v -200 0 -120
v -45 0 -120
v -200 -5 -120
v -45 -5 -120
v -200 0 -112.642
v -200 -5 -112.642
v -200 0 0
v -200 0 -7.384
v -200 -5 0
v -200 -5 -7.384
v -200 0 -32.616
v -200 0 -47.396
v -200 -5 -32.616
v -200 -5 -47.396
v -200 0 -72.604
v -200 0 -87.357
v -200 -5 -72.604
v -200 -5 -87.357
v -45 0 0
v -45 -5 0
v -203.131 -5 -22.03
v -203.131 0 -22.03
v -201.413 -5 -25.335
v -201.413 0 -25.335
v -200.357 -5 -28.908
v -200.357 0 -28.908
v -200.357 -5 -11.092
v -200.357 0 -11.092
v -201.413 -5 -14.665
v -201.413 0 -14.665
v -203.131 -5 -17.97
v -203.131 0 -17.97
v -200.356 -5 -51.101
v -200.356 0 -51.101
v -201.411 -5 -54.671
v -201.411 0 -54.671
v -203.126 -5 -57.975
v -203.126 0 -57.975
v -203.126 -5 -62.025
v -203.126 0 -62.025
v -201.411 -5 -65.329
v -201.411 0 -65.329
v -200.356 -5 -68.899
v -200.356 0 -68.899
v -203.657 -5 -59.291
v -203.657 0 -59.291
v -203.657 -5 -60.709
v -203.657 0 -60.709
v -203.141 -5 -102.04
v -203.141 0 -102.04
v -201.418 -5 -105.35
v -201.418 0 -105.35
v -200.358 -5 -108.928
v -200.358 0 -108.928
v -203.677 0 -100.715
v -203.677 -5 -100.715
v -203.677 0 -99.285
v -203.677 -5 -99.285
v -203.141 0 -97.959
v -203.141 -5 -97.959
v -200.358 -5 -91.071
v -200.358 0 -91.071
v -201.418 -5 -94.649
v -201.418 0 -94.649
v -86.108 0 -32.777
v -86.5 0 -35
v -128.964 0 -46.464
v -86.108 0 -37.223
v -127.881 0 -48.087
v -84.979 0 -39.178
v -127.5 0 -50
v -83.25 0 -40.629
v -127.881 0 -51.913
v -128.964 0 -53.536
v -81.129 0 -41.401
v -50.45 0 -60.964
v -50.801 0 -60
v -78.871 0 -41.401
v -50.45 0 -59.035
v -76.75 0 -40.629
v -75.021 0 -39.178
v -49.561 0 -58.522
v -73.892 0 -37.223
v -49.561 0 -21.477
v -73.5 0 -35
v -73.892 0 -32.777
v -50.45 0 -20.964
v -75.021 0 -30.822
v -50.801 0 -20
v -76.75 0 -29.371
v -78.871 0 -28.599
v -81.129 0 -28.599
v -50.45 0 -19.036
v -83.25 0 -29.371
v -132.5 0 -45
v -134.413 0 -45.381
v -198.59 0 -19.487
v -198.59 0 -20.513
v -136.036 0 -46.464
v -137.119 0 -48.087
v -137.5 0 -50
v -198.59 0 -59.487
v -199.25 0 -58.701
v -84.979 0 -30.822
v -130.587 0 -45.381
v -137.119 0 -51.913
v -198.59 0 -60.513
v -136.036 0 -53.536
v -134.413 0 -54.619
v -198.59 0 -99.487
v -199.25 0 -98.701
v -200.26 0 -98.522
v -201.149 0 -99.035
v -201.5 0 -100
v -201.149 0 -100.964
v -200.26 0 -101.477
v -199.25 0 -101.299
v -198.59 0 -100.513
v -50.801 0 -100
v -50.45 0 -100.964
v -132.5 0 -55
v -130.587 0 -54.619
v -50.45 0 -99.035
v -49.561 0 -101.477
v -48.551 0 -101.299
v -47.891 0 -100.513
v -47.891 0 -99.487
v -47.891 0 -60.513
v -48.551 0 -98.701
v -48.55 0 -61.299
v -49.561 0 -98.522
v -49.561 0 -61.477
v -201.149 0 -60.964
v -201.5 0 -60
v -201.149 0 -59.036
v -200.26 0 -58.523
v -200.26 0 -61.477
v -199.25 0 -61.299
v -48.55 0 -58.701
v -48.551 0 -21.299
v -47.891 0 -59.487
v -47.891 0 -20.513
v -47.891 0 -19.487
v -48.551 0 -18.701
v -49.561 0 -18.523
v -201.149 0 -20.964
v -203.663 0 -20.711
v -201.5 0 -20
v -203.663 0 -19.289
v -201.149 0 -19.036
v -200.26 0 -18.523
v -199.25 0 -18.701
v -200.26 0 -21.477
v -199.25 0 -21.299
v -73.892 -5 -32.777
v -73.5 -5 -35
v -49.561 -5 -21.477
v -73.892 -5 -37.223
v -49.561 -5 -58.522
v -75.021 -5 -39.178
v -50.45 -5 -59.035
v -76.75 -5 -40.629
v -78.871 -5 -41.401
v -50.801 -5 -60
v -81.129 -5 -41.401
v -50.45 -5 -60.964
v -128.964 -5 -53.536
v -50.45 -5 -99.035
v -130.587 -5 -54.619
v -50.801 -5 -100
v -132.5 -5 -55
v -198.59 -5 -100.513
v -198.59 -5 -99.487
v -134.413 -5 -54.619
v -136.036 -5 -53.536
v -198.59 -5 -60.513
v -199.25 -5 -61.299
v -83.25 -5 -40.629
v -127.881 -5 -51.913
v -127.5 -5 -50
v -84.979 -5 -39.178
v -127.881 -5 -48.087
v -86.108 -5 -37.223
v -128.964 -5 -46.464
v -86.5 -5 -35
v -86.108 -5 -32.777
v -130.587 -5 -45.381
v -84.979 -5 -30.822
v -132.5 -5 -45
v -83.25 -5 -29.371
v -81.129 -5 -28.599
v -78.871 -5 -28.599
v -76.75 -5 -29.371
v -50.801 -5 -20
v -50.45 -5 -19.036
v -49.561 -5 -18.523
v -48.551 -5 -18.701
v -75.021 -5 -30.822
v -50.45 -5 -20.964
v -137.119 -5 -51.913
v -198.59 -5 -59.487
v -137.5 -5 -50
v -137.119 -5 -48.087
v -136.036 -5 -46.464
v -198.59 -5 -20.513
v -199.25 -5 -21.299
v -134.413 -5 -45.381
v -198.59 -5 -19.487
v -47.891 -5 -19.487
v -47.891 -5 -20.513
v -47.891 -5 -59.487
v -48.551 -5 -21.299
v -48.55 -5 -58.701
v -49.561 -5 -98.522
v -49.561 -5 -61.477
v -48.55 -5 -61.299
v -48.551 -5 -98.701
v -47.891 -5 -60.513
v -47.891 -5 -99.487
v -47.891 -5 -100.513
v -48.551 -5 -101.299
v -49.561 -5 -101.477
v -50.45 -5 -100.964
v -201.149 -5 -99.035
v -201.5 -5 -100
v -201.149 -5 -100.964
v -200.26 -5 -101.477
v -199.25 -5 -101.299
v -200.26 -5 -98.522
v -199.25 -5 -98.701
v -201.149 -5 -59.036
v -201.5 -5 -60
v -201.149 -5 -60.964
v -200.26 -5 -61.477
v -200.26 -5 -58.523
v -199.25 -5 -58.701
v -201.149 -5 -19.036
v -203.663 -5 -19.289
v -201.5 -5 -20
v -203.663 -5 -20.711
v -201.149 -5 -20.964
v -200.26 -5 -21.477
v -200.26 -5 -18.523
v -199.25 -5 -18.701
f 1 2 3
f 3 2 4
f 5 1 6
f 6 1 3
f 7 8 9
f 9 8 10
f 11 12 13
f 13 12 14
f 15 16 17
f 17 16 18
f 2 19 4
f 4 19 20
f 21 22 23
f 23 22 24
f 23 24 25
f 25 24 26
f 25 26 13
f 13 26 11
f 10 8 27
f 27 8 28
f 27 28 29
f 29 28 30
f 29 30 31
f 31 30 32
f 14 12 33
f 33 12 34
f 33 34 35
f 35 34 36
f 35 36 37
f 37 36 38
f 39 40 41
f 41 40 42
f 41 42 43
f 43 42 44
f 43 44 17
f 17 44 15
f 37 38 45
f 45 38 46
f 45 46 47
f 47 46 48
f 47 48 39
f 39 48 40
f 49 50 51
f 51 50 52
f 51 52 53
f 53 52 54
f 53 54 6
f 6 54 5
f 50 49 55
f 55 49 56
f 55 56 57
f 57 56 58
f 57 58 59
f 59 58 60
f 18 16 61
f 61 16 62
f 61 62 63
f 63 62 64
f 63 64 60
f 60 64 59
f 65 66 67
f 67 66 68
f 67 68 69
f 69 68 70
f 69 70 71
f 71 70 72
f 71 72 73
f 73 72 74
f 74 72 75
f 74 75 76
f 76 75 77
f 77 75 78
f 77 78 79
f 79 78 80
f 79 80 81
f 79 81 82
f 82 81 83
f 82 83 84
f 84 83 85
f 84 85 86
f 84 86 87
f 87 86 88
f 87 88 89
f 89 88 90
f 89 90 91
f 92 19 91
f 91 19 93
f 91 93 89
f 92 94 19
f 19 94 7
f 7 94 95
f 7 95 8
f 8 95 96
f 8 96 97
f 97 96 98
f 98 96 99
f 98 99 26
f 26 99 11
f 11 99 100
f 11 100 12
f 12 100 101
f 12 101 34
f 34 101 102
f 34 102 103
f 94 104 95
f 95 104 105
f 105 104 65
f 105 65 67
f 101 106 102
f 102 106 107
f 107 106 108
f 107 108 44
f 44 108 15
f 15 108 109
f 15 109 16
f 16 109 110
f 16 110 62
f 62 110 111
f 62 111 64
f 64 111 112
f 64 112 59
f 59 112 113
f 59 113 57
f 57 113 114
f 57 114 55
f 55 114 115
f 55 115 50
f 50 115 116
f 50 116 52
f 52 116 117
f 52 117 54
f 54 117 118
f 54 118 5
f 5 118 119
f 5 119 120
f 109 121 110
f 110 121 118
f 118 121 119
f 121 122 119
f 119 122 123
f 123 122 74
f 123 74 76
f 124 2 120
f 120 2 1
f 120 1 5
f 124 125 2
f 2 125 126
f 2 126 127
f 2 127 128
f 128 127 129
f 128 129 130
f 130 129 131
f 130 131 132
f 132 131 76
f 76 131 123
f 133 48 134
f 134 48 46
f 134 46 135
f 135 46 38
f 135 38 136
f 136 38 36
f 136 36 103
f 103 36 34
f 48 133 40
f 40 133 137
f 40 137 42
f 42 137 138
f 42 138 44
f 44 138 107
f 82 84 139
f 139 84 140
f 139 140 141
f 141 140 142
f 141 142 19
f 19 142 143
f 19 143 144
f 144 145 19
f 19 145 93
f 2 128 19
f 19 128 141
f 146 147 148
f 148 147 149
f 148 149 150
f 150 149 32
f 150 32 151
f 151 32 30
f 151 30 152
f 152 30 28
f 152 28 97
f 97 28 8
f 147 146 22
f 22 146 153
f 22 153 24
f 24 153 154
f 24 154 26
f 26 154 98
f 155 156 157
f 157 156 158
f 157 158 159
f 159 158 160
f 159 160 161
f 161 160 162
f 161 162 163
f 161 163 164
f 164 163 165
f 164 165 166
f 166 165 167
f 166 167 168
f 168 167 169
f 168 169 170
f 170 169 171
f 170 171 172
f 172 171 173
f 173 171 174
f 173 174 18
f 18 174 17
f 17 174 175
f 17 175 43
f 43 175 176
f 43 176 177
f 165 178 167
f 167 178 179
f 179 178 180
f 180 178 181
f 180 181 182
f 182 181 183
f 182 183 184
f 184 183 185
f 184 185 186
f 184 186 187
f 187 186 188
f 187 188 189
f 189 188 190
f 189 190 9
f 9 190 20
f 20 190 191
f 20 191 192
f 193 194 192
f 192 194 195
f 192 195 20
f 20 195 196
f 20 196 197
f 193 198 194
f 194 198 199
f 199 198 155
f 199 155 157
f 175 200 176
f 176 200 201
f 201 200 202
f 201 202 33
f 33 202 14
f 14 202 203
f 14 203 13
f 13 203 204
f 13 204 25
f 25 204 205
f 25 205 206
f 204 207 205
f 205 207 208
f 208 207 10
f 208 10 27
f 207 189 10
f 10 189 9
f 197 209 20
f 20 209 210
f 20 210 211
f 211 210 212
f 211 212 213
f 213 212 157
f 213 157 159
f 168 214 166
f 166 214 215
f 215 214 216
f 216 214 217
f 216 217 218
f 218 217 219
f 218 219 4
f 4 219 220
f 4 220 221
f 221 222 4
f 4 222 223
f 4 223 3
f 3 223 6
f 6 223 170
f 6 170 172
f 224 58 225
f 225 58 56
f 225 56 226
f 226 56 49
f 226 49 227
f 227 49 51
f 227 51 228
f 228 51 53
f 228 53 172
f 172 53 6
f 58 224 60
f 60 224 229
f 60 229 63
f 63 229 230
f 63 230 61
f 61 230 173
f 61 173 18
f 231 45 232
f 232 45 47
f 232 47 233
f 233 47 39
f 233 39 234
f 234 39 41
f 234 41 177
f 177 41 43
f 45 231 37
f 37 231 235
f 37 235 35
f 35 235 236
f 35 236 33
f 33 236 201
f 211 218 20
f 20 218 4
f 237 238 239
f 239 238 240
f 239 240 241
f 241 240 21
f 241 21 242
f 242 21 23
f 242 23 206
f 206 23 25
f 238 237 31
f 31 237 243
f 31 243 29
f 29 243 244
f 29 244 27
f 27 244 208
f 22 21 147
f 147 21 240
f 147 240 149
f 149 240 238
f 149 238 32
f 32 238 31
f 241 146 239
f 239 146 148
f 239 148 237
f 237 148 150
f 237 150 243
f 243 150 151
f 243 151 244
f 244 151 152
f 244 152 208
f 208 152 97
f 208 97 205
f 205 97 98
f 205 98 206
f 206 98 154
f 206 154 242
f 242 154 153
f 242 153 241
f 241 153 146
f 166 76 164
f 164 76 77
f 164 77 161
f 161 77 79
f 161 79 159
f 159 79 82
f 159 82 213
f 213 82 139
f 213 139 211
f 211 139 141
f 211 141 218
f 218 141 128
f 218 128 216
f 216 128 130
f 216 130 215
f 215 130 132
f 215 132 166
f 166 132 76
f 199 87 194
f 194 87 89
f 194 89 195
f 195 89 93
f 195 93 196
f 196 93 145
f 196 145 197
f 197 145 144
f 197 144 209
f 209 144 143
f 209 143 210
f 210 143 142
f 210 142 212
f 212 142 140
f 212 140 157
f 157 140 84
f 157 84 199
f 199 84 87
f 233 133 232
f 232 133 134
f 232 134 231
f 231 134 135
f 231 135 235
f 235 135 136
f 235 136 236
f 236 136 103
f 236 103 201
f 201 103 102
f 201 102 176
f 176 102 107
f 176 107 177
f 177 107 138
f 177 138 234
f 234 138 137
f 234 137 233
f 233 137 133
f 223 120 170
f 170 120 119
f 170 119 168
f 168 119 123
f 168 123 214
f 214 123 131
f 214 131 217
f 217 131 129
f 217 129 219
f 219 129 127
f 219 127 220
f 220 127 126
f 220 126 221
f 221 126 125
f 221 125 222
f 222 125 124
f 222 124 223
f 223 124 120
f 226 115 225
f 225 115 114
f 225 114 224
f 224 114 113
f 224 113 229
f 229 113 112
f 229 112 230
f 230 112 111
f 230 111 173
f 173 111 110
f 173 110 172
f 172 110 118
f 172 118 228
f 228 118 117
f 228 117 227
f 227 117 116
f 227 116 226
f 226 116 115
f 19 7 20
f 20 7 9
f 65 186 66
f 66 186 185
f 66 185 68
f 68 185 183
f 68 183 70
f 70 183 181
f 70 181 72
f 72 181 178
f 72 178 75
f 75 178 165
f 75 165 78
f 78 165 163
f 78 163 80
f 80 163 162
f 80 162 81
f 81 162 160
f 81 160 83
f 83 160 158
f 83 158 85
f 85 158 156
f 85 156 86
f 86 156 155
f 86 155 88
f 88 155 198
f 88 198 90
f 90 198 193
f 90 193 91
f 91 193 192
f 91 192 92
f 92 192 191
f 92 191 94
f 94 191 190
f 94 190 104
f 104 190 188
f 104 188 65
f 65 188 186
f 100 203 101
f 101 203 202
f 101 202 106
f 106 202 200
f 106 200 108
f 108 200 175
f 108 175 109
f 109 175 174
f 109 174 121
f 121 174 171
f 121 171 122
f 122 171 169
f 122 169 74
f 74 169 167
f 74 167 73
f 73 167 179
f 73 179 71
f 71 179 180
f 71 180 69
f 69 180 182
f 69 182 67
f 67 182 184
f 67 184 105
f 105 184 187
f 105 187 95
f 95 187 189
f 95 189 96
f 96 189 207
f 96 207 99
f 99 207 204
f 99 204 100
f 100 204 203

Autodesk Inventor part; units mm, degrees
ref_plane "YZ Plane" through (0, 0, 0) normal (1, 0, 0) x (0, 1, 0)
ref_plane "XZ Plane" through (0, 0, 0) normal (0, 1, 0) x (-1, 0, 0)
ref_plane "XY Plane" through (0, 0, 0) normal (0, 0, 1) x (1, 0, 0)
sketch "Sketch2" plane through (0, 0, 0) normal (0, 1, 0) x (-1, 0, 0)
  line L0 (0, 0) -> (200, 0)
  line L1 (200, 0) -> (200, -120)
  line L2 (200, -120) -> (0, -120)
  line L3 (0, -120) -> (0, 0)
  dimension "d0" = 200
  dimension "d1" = 120
extrude "Extrusion1" add sketch "Sketch2" along normal blind 50
sketch "Sketch3" plane through (0, 50, 0) normal (0, 1, 0) x (1, 0, 0)
  line L0 (0, 120) -> (-200, 120) projected
  line L1 (0, 120) -> (0, 113)
  line L2 (0, 0) -> (0, 120) projected
  line L3 (-200, 0) -> (0, 0) projected
  line L4 (0, 0) -> (0, 7)
  line L5 (0, 7) -> (-45, 7)
  line L6 (-45, 7) -> (-45, 113)
  line L7 (-45, 113) -> (0, 113)
  line L8 (0, 113) -> (0, 7)
  dimension "d4" = 7
  dimension "d5" = 7
  dimension "d6" = 45
extrude "Extrusion2" cut sketch "Sketch3" against normal blind 50
sketch "Sketch6" plane through (-200, 0, 0) normal (0, 0, 1) x (1, 0, 0)
  line L0 (200, 0) -> (200, 50) projected
  line L1 (200, 0) -> (205, 0)
  line L2 (205, 0) -> (205, 50)
  line L3 (205, 50) -> (200, 50)
  line L4 (200, 50) -> (200, 0)
  dimension "d42" = 5
extrude "Extrusion4" add sketch "Sketch6" against normal blind 7
sketch "Sketch7" plane through (0, 0, -120) normal (0, 0, -1) x (-1, 0, 0)
  line L0 (45, 50) -> (0, 50) projected
  line L1 (200, 0) -> (-5, 0) projected
  line L2 (0, 50) -> (-5, 50)
  line L3 (-5, 50) -> (-5, 0)
  line L4 (-5, 0) -> (0, 0)
  line L5 (0, 0) -> (0, 50)
extrude "Extrusion5" add sketch "Sketch7" against normal blind 7
sketch "Sketch8" plane through (0, 0, 0) normal (0, -1, 0) x (1, 0, 0)
  line L0 (-200, -120) -> (-200, 0) projected
  line L1 (-200, 0) -> (5, 0) projected
  line L2 (-200, 0) -> (-195, 0)
  line L3 (-45, -113) -> (-45, -7) projected
  line L4 (-200, -120) -> (5, -120) projected
  line L5 (-45, -113) -> (-52, -113)
  line L6 (-52, -113) -> (-52, -120)
  line L7 (-52, -120) -> (-45, -120)
  line L8 (-45, -120) -> (-45, -113)
  line L9 (-45, -7) -> (5, -7) projected
  line L10 (-45, -7) -> (-52, -7)
  line L11 (-52, -7) -> (-52, 0)
  line L12 (-52, 0) -> (-45, 0)
  line L13 (-45, 0) -> (-45, -7)
  line L14 (-200, 0) -> (-193, 0)
  line L15 (-193, 0) -> (-193, -7)
  line L16 (-193, -7) -> (-200, -7)
  line L17 (-200, -7) -> (-200, 0)
  line L18 (-200, -120) -> (-193, -120)
  line L19 (-193, -120) -> (-193, -113)
  line L20 (-193, -113) -> (-200, -113)
  line L21 (-200, -113) -> (-200, -120)
  line L22 (-193, -113) -> (-52, -113)
  line L23 (-52, -113) -> (-52, -7)
  line L24 (-52, -7) -> (-193, -7)
  line L25 (-193, -7) -> (-193, -113)
  point P0 (0, 0)
  dimension "d51" = 7
  dimension "d52" = 7
  dimension "d53" = 7
  dimension "d54" = 7
  dimension "d55" = 7
  dimension "d56" = 7
  dimension "d57" = 7
extrude "Extrusion6" cut sketch "Sketch8" against normal blind 45 contours L25 L24 L23 L22
sketch "Sketch9" plane through (-45, 50, -7) normal (1, 0, 0) x (0, 0, -1)
  line L0 (106, -50) -> (0, -50) projected
  line L1 (53, -50) -> (53, 0)
  line L2 (0, 0) -> (106, 0) projected
  line L3 (53, -25) -> (106, -25)
  line L4 (106, -25) -> (84, -25)
  line L5 (84, -25) -> (84, -15)
  line L6 (84, -25) -> (84, -35)
  line L7 (84, -35) -> (72, -35)
  line L8 (72, -35) -> (72, -15)
  line L9 (72, -15) -> (84, -15)
  line L10 (84, -15) -> (84, -35)
  line L11 (106, 0) -> (0, 0)
  line L12 (53, -25) -> (0, -25)
  line L13 (0, -25) -> (22, -25)
  line L14 (106, -25) -> (86, -25)
  line L15 (86, -25) -> (69.9067, -25)
  line L16 (69.9067, -25) -> (69.9067, -38.406)
  line L17 (69.9067, -38.406) -> (86, -38.406)
  line L18 (86, -38.406) -> (86, -25)
  line L19 (86, -25) -> (69.9067, -25)
  line L20 (69.9067, -25) -> (69.9067, -11.59)
  line L21 (69.9067, -11.59) -> (86, -11.59)
  line L22 (86, -11.59) -> (86, -25)
  line L23 (53, -25) -> (0, -25)
  line L24 (0, -25) -> (22, -25)
  line L25 (22, -25) -> (22, -15)
  line L26 (22, -25) -> (22, -35)
  line L27 (22, -35) -> (34, -35)
  line L28 (34, -35) -> (34, -15)
  line L29 (34, -15) -> (22, -15)
  line L30 (22, -15) -> (22, -35)
  line L31 (0, -25) -> (20, -25)
  line L32 (20, -25) -> (36.0933, -25)
  line L33 (36.0933, -25) -> (36.0933, -38.406)
  line L34 (36.0933, -38.406) -> (20, -38.406)
  line L35 (20, -38.406) -> (20, -25)
  line L36 (20, -25) -> (36.0933, -25)
  line L37 (36.0933, -25) -> (36.0933, -11.59)
  line L38 (36.0933, -11.59) -> (20, -11.59)
  line L39 (20, -11.59) -> (20, -25)
  point P0 (-7, -50)
  dimension "d60" = 22
  dimension "d61" = 10
  dimension "d62" = 10
  dimension "d63" = 12
  dimension "d66" = 20
  dimension "d67" = 13.41
  dimension "d68" = 13.4061
extrude "Extrusion8" cut sketch "Sketch9" against normal blind 10
sketch "Sketch10" plane through (0, 45, 0) normal (0, -1, 0) x (1, 0, 0)
  line L0 (-193, -113) -> (-193, -7) projected
  line L1 (-193, -60) -> (-148, -60)
  line L2 (-148, -7) -> (-143, -7)
  line L3 (-143, -7) -> (-143, -95.0021)
  line L4 (-143, -95.0021) -> (-148, -95.0021)
  line L5 (-148, -95.0021) -> (-148, -7)
  point P0 (0, 0)
  dimension "d71" = 45
  dimension "d72" = 5
extrude "Extrusion9" add sketch "Sketch10" along normal blind 40
sketch "Sketch11" plane through (0, 0, 0) normal (0, -1, 0) x (1, 0, 0)
  line L0 (-148, -7) -> (-148, -95.0021) projected
  line L1 (-148, -95.0021) -> (-148, -114.483)
  line L2 (-52, -113) -> (-193, -113) projected
  line L3 (-193, -113) -> (-148, -113)
  line L4 (-148, -113) -> (-148, -117)
  line L5 (-148, -117) -> (-193, -117)
  line L6 (-193, -117) -> (-193, -113)
  line L7 (-193, -7) -> (-52, -7) projected
  line L8 (-193, -7) -> (-148, -7)
  line L9 (-148, -7) -> (-148, -3)
  line L10 (-148, -3) -> (-193, -3)
  line L11 (-193, -3) -> (-193, -7)
  point P0 (0, 0)
  dimension "d75" = 4
  dimension "d76" = 4
extrude "Extrusion10" cut sketch "Sketch11" against normal blind 45
sketch "Sketch12" plane through (-52, 0, -113) normal (0, 0, 1) x (1, 0, 0)
  line L0 (0, 0) -> (0, 45) projected
  line L1 (0, 45) -> (-91, 45)
  line L2 (-91, 45) -> (-91, 0)
  line L3 (-91, 0) -> (0, 0)
  line L4 (0, 0) -> (0, 45)
  line L5 (-69.4543, 22.5) -> (-21.0513, 22.5) construction
  line L6 (-69.4543, 10.4971) -> (-21.0513, 10.4971)
  line L7 (-21.0513, 34.5029) -> (-69.4543, 34.5029)
  arc A0 (-69.4543, 34.5029) -> (-69.4543, 10.4971) centre (-69.4543, 22.5) ccw
  arc A1 (-21.0513, 10.4971) -> (-21.0513, 34.5029) centre (-21.0513, 22.5) ccw
  point P0 (52, 0)
  point P1 (-45.2528, 22.5)
extrude "Extrusion11" cut sketch "Sketch12" along normal mid plane 2000 contours A0 L7 A1 L6
sketch "Sketch13" plane through (0, 0, 0) normal (0, -1, 0) x (1, 0, 0)
  line L0 (-200, -120) -> (-200, 0) projected
  line L1 (-200, -60) -> (-200, -100)
  line L2 (-200, -100) -> (-200, -20)
  circle A0 centre (-200, -20) radius 3.75
  circle A1 centre (-200, -60) radius 3.75
  circle A2 centre (-200, -100) radius 3.75
  circle A3 centre (-49.267, -60) radius 3.75
  circle A4 centre (-49.267, -100) radius 3.75
  circle A5 centre (-49.267, -20) radius 3.75
  line L3 (-45, -113) -> (-45, -7) projected
  point P0 (0, 0)
  dimension "d81" = 40
  dimension "d82" = 80
  dimension "d83" = 7.5
  dimension "d84" = 7.5
  dimension "d85" = 7.5
extrude "Extrusion12" add sketch "Sketch13" against normal blind 17.5 contours A2 L0 | L0 A2 | A1 L0 | L0 A1 | A0 L0 | L0 A0 | A3
extrude "Extrusion13" add sketch "Sketch13" against normal blind 17.5 contours A3 | A4 | A5
sketch "Sketch16" plane through (0, 0, 0) normal (0, -1, 0) x (1, 0, 0)
  arc A0 (-200, -16.25) -> (-200, -23.75) centre (-200, -20) ccw projected
  circle A1 centre (-200, -20) radius 1.5
  line L0 (-200, -120) -> (-200, 0) projected
  circle A2 centre (-200, -60) radius 1.5
  circle A3 centre (-200, -99.9997) radius 1.5
  circle A4 centre (-49.3006, -99.9997) radius 1.5
  circle A5 centre (-49.3006, -60) radius 1.5
  circle A6 centre (-49.3006, -20) radius 1.5
  point P0 (0, 0)
  dimension "d90" = 3
  dimension "d91" = 3
  dimension "d92" = 3
  dimension "d93" = 3
  dimension "d94" = 3
  dimension "d95" = 3
extrude "Extrusion14" cut sketch "Sketch16" along normal mid plane 15 contours L0 A1 | A1 L0 | A3 L0 | L0 A3 | A2 L0 | L0 A2 | A4 | A5 | A6
fillet "Fillet1" radius 3.5875 3 edges at (-203.75, 17.5, -60) (-203.75, 17.5, -100) (-203.75, 17.5, -20)
fillet "Fillet2" radius 2 3 edges at (-53.017, 17.5, -100) (-53.017, 17.5, -60) (-53.017, 17.5, -20)
sketch "Sketch17" plane through (0, 45, 0) normal (0, -1, 0) x (1, 0, 0)
  line L0 (-148, -7) -> (-52, -7) projected
  line L1 (-142.7275, -7) -> (-52, -7)
  line L2 (-52, -7) -> (-52, -113)
  line L3 (-52, -113) -> (-142.7275, -113)
  circle A0 centre (-49.3006, -60) radius 1.5 projected
  line L4 (-49.3006, -60) -> (-200.2165, -60)
  line L5 (-121.4543, -7) -> (-73.0513, -7) projected
  line L6 (-97.2528, -7) -> (-64.7528, -7)
  line L7 (-64.7528, -7) -> (-97.2528, -7)
  line L8 (-97.2528, -7) -> (-129.7528, -7)
  line L9 (-148, -7) -> (-143, -7) projected
  line L10 (-143, -7) -> (-129.7528, -7)
  line L11 (-143, -7) -> (-64.7528, -7)
  circle A1 centre (-64.7528, -101.7496) radius 2
  circle A2 centre (-64.7528, -18.25) radius 2
  circle A3 centre (-129.7528, -18.25) radius 2
  circle A4 centre (-129.7528, -101.7496) radius 2
  point P0 (0, 0)
  dimension "d105" = 32.5
  dimension "d106" = 32.5
  dimension "d107" = 32.5
  dimension "d108" = 4
  dimension "d109" = 4
  dimension "d110" = 4
  dimension "d111" = 4
extrude "Extrusion15" cut sketch "Sketch17" against normal blind 15 contours A1 | A2 | A3 | A4
fillet "Fillet3" radius 19.4625 15 edges at (-200, 16.4492, -17.3007) (-200, 16.4492, -22.6993) (-200, 17.5, -20) (-200, 6.9562, -16.25) (-200, 6.9562, -23.75) (-200, 16.4492, -62.6992) (-200, 16.4492, -57.3008) (-200, 17.5, -60) (-200, 6.9562, -63.75) (-200, 6.9562, -56.25) (-200, 16.4492, -102.6993) (-200, 16.4492, -97.3007) (-200, 17.5, -100) (-200, 6.9562, -103.75) (-200, 6.9562, -96.25)
sketch "Sketch18" plane through (-200, 0, -120) normal (0, 0, -1) x (-1, 0, 0)
  line L0 (-155, 50) -> (-155, 0) projected
  line L1 (-155, 0) -> (-155, 50)
  circle A0 centre (0, 0) radius 11.05
  circle A1 centre (-15.5, 15.5) radius 1.75
  circle A2 centre (15.5, 15.5) radius 1.75
  circle A3 centre (15.5, -15.5) radius 1.75
  circle A4 centre (-15.5, -15.5) radius 1.75
  circle A5 centre (0, 0) radius 11.05
  circle A6 centre (-15.5, 15.5) radius 1.75
  circle A7 centre (15.5, 15.5) radius 1.75
  circle A8 centre (15.5, -15.5) radius 1.75
  circle A9 centre (-15.5, -15.5) radius 1.75
  circle A10 centre (0, 0) radius 11.05
  circle A11 centre (-15.5, 15.5) radius 1.75
  circle A12 centre (15.5, 15.5) radius 1.75
  circle A13 centre (15.5, -15.5) radius 1.75
  circle A14 centre (-15.5, -15.5) radius 1.75
  line L2 (-205, 0) -> (-205, 50) projected
  line L3 (-155, 0) -> (-205, 0)
  line L4 (-205, 0) -> (-205, 50)
  line L5 (-205, 50) -> (-155, 50)
  line L6 (-155, 50) -> (-155, 0)
  circle A15 centre (-180, 25) radius 11.5
  line L7 (-180, 25) -> (-164.5, 25)
  line L8 (-164.5, 25) -> (-164.5, 50)
  line L9 (-205, 50) -> (-155, 50) projected
  line L10 (-205, 0) -> (0, 0) projected
  line L11 (-164.5, 0) -> (-164.5, 25)
  line L12 (-180, 25) -> (-195.5, 25)
  line L13 (-195.5, 25) -> (-195.5, 50)
  line L14 (-195.5, 0) -> (-195.5, 25)
  line L15 (-180, 25) -> (-180, 9.5)
  line L16 (-180, 25) -> (-180, 40.5)
  line L17 (-180, 40.5) -> (-164.5, 40.5)
  line L18 (-180, 40.5) -> (-195.5, 40.5)
  line L19 (-180, 9.5) -> (-164.5, 9.5)
  line L20 (-180, 9.5) -> (-195.5, 9.5)
  circle A16 centre (-164.5, 9.5) radius 2.5
  circle A17 centre (-164.5, 40.5) radius 2.5
  circle A18 centre (-195.5, 40.5) radius 2.5
  circle A19 centre (-195.5, 9.5) radius 2.5
  point P0 (-200, 0)
  dimension "d115" = 22.1
  dimension "d116" = 31
  dimension "d117" = 31
  dimension "d118" = 31
  dimension "d119" = 31
  dimension "d120" = 3.5
  dimension "d121" = 3.5
  dimension "d122" = 3.5
  dimension "d123" = 3.5
  dimension "d124" = 15.5
  dimension "d125" = 15.5
  dimension "d126" = 15.5
  dimension "d127" = 15.5
  dimension "d128" = 22.1
  dimension "d129" = 31
  dimension "d130" = 31
  dimension "d131" = 31
  dimension "d132" = 31
  dimension "d133" = 3.5
  dimension "d134" = 3.5
  dimension "d135" = 3.5
  dimension "d136" = 3.5
  dimension "d137" = 15.5
  dimension "d138" = 15.5
  dimension "d139" = 15.5
  dimension "d140" = 15.5
  dimension "d141" = 22.1
  dimension "d142" = 31
  dimension "d143" = 31
  dimension "d144" = 31
  dimension "d145" = 31
  dimension "d146" = 3.5
  dimension "d147" = 3.5
  dimension "d148" = 3.5
  dimension "d149" = 3.5
  dimension "d150" = 15.5
  dimension "d151" = 15.5
  dimension "d152" = 15.5
  dimension "d153" = 15.5
  dimension "d154" = 23
  dimension "d156" = 15.5
  dimension "d157" = 15.5
  dimension "d158" = 5
  dimension "d159" = 5
  dimension "d160" = 5
  dimension "d161" = 5
extrude "Extrusion16" cut sketch "Sketch18" against normal blind 2000 contours A17 L8 | L8 L17 A17 | A16 L19 L11 | L11 A16 | A18 L18 L13 | L13 A18 | L8 A17 L17 | A19 L14 | L14 L20 A19 | L19 A16 L11 | L18 A18 L13 | L14 A19 L20 | L16 L12 A15 | A15 L7 L16 | L15 L7 A15 | A15 L12 L15
sketch "Sketch19" plane through (0, 45, 0) normal (0, -1, 0) x (1, 0, 0)
  circle A0 centre (-129.7528, -101.7496) radius 2 projected
  circle A1 centre (-129.7528, -18.25) radius 2 projected
  line L0 (-129.7528, -101.7496) -> (-129.7528, -18.25)
  circle A2 centre (-64.7528, -18.25) radius 2 projected
  line L1 (-129.7528, -18.25) -> (-64.7528, -18.25)
  circle A3 centre (-64.7528, -101.7496) radius 2 projected
  line L2 (-64.7528, -18.25) -> (-64.7528, -101.7496)
  line L3 (-64.7528, -101.7496) -> (-129.7528, -101.7496)
  line L4 (-87.014, -168.9687) -> (-85.0378, -168.9687)
  circle A4 centre (-49.3006, -20) radius 1.5 projected
  circle A5 centre (-49.3006, -20) radius 1.5
  circle A6 centre (-49.3006, -59.9998) radius 1.5002
  circle A7 centre (-49.3006, -99.9997) radius 1.5 projected
  circle A8 centre (-49.3006, -99.9997) radius 1.5
  line L5 (-200, -120) -> (-200, 0) projected
  circle A9 centre (-200, -99.9997) radius 1.5
  circle A10 centre (-200, -60) radius 1.5 projected
  circle A11 centre (-200, -60) radius 1.5
  circle A12 centre (-200, -20) radius 1.5
  point P0 (0, 0)
extrude "Extrusion17" add sketch "Sketch19" along normal blind 100 contours A4 | A6 | A7 | A9 L5 | L5 A9 | A10 L5 | L5 A10 | A12 L5 | L5 A12
sketch "Sketch20" plane through (0, 0, 0) normal (0, -1, 0) x (1, 0, 0)
  line L0 (5, -120) -> (-200, -120) projected
  line L1 (-45, 0) -> (-200, 0)
  line L2 (-200, 0) -> (-200, -120)
  line L3 (-200, -120) -> (-45, -120)
  line L4 (-45, -120) -> (-45, 0)
  line L5 (-200, -61.5) -> (-200, -58.5) projected
  circle A0 centre (-200, -60) radius 3.7248
  line L6 (-200, -101.4997) -> (-200, -98.4997) projected
  circle A1 centre (-200, -99.9997) radius 3.7458
  line L7 (-200, -21.5) -> (-200, -18.5) projected
  circle A2 centre (-200, -20) radius 3.7312
  point P0 (0, 0)
  point P1 (-200, -16.2688)
  point P2 (-200, -23.7312)
  point P3 (-200, -56.2752)
  point P4 (-200, -63.7248)
  point P5 (-200, -96.2539)
  point P6 (-200, -103.7454)
extrude "Extrusion18" add sketch "Sketch20" along normal blind 5
fillet "Fillet4" radius 19.4625 6 edges at (-200, -2.5, -96.2539) (-200, -2.5, -103.7454) (-200, -2.5, -63.7248) (-200, -2.5, -56.2752) (-200, -2.5, -16.2688) (-200, -2.5, -23.7312)
sketch "Sketch21" plane through (0, -5, 0) normal (0, -1, 0) x (1, 0, 0)
  point P0 (0, 0)
sketch "Sketch22" plane through (0, 50, 0) normal (0, 1, 0) x (1, 0, 0)
  line L0 (-218.9045, 160.531) -> (29.7585, 160.531)
  line L1 (29.7585, 160.531) -> (29.7585, -28.8143)
  line L2 (29.7585, -28.8143) -> (-218.9045, -28.8143)
  line L3 (-218.9045, -28.8143) -> (-218.9045, 160.531)
  point P0 (0, 0)
extrude "Extrusion19" cut sketch "Sketch22" against normal blind 50
sketch "Sketch24" plane through (0, -5, 0) normal (0, -1, 0) x (1, 0, 0)
  circle A0 centre (-49.3006, -20) radius 1.5 projected
  circle A1 centre (-49.3006, -20) radius 1.5
  circle A2 centre (-49.3006, -59.9998) radius 1.5002 projected
  circle A3 centre (-49.3006, -59.9998) radius 1.5002
  circle A4 centre (-49.3006, -99.9997) radius 1.5 projected
  circle A5 centre (-49.3006, -99.9997) radius 1.5
  circle A6 centre (-200, -99.9997) radius 1.5 projected
  circle A7 centre (-200, -99.9997) radius 1.5
  circle A8 centre (-200, -60) radius 1.5 projected
  circle A9 centre (-200, -60) radius 1.5
  circle A10 centre (-200, -20) radius 1.5 projected
  circle A11 centre (-200, -20) radius 1.5
  point P0 (0, 0)
extrude "Extrusion20" cut sketch "Sketch24" along normal mid plane 500
sketch "Sketch25" plane through (0, -5, 0) normal (0, -1, 0) x (1, 0, 0)
  line L0 (-45, -120) -> (-45, 0) projected
  line L1 (-45, 0) -> (-132.5, 0)
  line L2 (-132.5, 0) -> (-132.5, -50)
  line L3 (-132.5, -50) -> (-45, -50)
  line L4 (-45, -50) -> (-45, 0)
  circle A0 centre (-132.5, -50) radius 5
  line L5 (-45, 0) -> (-200, 0) projected
  line L6 (-45, 0) -> (-80, 0)
  line L7 (-80, 0) -> (-80, -35)
  line L8 (-80, -35) -> (-45, -35)
  line L9 (-45, -35) -> (-45, 0)
  circle A1 centre (-80, -35) radius 6.5
  point P0 (0, 0)
  dimension "d181" = 87.5
  dimension "d182" = 50
  dimension "d183" = 10
  dimension "d184" = 35
  dimension "d185" = 35
  dimension "d186" = 13
extrude "Extrusion21" cut sketch "Sketch25" against normal blind 500 contours A0 L2 L3 | L3 L2 A0 | A1 L7 L8 | L8 L7 A1
equation "\"d69\" = d62"
properties part number "chassis_cap"
